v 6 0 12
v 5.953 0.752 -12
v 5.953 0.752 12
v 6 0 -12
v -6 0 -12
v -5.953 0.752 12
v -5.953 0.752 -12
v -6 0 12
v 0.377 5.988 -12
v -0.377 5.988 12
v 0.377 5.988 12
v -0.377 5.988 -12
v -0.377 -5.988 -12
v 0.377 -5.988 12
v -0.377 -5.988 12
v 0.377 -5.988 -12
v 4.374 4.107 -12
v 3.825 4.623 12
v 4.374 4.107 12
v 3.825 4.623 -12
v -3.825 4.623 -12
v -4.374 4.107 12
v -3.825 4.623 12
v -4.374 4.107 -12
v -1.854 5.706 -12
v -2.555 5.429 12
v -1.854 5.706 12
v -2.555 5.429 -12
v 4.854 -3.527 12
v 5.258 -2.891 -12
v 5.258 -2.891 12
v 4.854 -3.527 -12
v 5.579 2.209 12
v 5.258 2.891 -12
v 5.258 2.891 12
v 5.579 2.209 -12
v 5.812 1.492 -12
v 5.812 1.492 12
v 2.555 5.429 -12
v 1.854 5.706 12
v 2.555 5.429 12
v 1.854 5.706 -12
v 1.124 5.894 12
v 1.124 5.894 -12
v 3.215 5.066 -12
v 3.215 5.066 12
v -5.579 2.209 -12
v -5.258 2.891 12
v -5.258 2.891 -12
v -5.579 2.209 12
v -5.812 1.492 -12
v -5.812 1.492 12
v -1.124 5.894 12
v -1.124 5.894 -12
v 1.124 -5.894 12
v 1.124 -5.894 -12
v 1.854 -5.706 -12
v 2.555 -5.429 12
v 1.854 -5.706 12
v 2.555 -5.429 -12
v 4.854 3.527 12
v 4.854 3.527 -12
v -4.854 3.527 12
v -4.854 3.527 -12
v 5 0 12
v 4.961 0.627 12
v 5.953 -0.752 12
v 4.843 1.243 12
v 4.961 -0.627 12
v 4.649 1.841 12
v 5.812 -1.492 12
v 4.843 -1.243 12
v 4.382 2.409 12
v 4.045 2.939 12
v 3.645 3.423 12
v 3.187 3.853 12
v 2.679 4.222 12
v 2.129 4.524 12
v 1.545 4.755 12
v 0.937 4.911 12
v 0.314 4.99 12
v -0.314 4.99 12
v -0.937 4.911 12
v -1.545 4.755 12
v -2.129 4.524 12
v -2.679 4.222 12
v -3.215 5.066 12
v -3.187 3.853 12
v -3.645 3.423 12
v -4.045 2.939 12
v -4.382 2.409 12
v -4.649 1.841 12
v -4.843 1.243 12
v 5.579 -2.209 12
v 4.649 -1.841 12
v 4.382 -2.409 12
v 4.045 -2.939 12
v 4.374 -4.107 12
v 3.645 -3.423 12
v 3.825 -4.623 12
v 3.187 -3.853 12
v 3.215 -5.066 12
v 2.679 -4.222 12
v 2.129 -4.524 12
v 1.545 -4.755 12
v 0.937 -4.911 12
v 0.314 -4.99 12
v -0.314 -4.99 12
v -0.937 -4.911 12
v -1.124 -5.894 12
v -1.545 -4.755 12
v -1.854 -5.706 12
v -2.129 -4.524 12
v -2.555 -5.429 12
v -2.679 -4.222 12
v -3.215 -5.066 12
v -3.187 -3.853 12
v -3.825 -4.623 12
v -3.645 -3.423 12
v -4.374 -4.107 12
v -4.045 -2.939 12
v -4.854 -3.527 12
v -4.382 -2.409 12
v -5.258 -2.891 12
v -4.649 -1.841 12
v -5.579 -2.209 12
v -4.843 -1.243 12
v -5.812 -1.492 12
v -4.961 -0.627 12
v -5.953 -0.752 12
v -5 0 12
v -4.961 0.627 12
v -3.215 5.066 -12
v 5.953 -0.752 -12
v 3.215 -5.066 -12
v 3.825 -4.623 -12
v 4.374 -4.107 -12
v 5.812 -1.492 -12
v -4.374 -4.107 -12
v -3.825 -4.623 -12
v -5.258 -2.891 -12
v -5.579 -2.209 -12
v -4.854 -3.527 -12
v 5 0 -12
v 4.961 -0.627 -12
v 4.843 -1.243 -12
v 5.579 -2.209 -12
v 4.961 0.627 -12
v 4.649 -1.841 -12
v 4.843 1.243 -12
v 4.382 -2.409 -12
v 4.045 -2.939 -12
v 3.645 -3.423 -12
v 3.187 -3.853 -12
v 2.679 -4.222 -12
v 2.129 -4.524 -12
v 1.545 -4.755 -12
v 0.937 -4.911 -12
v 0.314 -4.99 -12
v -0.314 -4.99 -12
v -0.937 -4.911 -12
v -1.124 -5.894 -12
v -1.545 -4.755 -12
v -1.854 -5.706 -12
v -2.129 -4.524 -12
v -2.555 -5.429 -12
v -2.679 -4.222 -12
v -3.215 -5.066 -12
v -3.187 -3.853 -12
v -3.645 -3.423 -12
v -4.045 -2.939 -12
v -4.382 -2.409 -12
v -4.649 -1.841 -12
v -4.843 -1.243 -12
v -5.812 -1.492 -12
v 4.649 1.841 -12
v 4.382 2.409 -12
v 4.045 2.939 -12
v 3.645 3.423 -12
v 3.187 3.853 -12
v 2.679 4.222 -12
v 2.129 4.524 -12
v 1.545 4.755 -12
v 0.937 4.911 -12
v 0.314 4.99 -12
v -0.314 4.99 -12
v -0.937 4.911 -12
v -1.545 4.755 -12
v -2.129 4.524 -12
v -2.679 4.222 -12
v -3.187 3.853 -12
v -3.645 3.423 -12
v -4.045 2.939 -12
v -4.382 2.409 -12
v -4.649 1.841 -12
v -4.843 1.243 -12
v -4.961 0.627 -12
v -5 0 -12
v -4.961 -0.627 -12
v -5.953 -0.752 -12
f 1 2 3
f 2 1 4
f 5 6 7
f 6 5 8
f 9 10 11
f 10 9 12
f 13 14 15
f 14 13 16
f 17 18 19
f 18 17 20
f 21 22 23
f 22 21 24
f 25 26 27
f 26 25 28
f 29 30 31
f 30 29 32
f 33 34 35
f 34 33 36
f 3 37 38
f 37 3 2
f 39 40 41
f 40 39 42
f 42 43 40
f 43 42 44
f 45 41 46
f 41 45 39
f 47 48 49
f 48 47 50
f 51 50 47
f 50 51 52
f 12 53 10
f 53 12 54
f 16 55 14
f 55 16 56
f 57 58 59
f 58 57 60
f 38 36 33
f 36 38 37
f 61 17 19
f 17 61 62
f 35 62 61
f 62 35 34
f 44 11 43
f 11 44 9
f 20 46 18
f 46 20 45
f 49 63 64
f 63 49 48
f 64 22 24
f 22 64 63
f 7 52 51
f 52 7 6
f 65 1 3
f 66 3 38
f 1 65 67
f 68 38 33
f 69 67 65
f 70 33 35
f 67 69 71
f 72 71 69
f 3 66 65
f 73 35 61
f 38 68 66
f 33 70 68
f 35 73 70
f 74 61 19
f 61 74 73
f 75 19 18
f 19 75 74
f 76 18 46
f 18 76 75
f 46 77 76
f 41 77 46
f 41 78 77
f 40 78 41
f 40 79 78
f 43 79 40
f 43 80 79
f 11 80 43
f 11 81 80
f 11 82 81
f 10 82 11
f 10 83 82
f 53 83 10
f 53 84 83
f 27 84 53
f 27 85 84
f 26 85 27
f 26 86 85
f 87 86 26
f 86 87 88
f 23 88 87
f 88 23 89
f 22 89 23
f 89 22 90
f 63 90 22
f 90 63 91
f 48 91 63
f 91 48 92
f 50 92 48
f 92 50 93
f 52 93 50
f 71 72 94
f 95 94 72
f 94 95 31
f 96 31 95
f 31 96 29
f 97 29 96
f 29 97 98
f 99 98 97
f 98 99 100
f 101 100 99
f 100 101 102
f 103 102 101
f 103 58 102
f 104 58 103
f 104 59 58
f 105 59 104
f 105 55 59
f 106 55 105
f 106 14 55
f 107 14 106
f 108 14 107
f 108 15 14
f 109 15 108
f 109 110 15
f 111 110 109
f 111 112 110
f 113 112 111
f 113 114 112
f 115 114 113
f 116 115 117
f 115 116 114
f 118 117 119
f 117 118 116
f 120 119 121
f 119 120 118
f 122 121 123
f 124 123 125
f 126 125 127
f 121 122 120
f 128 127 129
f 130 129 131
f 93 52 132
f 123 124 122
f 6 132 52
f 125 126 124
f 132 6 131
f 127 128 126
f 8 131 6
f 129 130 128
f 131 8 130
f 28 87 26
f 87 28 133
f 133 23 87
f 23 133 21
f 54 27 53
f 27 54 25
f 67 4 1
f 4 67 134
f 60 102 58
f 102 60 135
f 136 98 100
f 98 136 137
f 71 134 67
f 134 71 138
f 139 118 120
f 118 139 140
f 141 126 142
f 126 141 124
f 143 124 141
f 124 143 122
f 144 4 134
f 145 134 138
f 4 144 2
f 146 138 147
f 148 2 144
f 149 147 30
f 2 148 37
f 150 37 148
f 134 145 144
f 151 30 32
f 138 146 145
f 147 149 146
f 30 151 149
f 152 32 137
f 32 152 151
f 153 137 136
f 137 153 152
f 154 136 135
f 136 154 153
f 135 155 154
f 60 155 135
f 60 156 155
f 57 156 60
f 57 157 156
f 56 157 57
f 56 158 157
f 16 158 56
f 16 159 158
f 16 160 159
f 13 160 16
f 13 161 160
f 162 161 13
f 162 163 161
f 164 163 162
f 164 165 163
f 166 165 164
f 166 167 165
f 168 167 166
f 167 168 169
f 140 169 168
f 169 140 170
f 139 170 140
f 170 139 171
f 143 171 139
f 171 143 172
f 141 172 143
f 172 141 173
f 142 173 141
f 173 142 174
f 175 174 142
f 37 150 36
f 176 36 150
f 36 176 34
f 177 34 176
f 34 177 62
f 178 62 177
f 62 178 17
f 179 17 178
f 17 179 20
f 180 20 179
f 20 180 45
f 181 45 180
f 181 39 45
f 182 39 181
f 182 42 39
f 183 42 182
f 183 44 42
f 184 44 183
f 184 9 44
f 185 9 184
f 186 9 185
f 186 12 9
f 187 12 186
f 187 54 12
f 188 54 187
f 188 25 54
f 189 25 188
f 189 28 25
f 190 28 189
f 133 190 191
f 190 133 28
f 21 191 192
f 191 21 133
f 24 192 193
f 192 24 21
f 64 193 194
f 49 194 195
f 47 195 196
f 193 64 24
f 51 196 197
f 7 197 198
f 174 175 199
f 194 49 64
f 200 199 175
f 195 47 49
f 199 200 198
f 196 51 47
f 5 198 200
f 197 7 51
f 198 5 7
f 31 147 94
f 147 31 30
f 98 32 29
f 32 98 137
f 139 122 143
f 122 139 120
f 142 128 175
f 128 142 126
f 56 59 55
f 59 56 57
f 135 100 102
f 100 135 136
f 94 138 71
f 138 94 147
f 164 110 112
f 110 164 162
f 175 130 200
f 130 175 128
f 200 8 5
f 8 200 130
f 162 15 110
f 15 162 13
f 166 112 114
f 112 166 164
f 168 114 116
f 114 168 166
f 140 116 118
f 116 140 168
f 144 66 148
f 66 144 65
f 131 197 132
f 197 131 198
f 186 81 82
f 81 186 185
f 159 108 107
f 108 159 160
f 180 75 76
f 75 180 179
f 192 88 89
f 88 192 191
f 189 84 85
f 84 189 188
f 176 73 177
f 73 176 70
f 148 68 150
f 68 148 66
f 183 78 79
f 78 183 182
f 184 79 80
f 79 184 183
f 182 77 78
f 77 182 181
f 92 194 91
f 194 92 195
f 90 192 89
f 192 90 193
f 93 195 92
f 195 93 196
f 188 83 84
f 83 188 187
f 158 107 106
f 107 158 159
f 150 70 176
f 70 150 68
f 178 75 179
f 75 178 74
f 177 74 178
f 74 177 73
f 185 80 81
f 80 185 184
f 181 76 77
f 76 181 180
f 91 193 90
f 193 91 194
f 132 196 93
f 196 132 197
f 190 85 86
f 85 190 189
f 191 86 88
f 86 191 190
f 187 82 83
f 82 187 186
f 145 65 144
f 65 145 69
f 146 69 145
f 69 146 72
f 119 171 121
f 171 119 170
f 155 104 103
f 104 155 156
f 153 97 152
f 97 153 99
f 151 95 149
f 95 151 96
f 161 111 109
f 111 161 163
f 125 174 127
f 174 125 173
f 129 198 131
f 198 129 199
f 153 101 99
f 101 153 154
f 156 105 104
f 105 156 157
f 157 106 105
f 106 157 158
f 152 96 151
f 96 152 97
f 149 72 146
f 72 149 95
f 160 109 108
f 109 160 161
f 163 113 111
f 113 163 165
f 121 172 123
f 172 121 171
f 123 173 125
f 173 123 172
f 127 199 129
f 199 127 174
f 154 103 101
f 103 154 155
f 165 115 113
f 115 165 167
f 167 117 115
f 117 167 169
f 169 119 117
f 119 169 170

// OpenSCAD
$fn = 50;


difference() {
	union() {
		translate(v = [0, 0, -12.0000000000]) {
			cylinder(h = 24, r = 6.0000000000);
		}
	}
	union() {
		translate(v = [0, 0, -100.0000000000]) {
			cylinder(h = 200, r = 5.0000000000);
		}
	}
}
